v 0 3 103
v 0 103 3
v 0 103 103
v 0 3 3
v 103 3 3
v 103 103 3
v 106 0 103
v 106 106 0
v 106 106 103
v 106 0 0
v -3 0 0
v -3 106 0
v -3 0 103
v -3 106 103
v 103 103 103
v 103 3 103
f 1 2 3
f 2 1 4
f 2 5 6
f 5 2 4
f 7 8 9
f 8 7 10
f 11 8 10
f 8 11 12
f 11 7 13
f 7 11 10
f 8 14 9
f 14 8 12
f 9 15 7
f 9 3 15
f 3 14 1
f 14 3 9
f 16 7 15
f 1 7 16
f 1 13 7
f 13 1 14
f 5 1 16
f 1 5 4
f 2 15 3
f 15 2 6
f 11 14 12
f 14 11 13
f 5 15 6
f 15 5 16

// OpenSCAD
// Dimensions

Length = 100;
Thickness = 3;

// Modules
module base() {
  cube([Length + (2 * Thickness), Length + (2 * Thickness), Thickness]);
}

module wall() {
  cube([Length + (2 * Thickness), Thickness, Length + Thickness]);
}

// Model
base();

wall();

translate([0, Length + Thickness, 0]) {
  wall();
}

rotate([0, 0, 90]) {
  wall();
}

translate([Length + (2 * Thickness), 0, 0]) {
  rotate([0, 0, 90]) {
    wall();
  }
}
